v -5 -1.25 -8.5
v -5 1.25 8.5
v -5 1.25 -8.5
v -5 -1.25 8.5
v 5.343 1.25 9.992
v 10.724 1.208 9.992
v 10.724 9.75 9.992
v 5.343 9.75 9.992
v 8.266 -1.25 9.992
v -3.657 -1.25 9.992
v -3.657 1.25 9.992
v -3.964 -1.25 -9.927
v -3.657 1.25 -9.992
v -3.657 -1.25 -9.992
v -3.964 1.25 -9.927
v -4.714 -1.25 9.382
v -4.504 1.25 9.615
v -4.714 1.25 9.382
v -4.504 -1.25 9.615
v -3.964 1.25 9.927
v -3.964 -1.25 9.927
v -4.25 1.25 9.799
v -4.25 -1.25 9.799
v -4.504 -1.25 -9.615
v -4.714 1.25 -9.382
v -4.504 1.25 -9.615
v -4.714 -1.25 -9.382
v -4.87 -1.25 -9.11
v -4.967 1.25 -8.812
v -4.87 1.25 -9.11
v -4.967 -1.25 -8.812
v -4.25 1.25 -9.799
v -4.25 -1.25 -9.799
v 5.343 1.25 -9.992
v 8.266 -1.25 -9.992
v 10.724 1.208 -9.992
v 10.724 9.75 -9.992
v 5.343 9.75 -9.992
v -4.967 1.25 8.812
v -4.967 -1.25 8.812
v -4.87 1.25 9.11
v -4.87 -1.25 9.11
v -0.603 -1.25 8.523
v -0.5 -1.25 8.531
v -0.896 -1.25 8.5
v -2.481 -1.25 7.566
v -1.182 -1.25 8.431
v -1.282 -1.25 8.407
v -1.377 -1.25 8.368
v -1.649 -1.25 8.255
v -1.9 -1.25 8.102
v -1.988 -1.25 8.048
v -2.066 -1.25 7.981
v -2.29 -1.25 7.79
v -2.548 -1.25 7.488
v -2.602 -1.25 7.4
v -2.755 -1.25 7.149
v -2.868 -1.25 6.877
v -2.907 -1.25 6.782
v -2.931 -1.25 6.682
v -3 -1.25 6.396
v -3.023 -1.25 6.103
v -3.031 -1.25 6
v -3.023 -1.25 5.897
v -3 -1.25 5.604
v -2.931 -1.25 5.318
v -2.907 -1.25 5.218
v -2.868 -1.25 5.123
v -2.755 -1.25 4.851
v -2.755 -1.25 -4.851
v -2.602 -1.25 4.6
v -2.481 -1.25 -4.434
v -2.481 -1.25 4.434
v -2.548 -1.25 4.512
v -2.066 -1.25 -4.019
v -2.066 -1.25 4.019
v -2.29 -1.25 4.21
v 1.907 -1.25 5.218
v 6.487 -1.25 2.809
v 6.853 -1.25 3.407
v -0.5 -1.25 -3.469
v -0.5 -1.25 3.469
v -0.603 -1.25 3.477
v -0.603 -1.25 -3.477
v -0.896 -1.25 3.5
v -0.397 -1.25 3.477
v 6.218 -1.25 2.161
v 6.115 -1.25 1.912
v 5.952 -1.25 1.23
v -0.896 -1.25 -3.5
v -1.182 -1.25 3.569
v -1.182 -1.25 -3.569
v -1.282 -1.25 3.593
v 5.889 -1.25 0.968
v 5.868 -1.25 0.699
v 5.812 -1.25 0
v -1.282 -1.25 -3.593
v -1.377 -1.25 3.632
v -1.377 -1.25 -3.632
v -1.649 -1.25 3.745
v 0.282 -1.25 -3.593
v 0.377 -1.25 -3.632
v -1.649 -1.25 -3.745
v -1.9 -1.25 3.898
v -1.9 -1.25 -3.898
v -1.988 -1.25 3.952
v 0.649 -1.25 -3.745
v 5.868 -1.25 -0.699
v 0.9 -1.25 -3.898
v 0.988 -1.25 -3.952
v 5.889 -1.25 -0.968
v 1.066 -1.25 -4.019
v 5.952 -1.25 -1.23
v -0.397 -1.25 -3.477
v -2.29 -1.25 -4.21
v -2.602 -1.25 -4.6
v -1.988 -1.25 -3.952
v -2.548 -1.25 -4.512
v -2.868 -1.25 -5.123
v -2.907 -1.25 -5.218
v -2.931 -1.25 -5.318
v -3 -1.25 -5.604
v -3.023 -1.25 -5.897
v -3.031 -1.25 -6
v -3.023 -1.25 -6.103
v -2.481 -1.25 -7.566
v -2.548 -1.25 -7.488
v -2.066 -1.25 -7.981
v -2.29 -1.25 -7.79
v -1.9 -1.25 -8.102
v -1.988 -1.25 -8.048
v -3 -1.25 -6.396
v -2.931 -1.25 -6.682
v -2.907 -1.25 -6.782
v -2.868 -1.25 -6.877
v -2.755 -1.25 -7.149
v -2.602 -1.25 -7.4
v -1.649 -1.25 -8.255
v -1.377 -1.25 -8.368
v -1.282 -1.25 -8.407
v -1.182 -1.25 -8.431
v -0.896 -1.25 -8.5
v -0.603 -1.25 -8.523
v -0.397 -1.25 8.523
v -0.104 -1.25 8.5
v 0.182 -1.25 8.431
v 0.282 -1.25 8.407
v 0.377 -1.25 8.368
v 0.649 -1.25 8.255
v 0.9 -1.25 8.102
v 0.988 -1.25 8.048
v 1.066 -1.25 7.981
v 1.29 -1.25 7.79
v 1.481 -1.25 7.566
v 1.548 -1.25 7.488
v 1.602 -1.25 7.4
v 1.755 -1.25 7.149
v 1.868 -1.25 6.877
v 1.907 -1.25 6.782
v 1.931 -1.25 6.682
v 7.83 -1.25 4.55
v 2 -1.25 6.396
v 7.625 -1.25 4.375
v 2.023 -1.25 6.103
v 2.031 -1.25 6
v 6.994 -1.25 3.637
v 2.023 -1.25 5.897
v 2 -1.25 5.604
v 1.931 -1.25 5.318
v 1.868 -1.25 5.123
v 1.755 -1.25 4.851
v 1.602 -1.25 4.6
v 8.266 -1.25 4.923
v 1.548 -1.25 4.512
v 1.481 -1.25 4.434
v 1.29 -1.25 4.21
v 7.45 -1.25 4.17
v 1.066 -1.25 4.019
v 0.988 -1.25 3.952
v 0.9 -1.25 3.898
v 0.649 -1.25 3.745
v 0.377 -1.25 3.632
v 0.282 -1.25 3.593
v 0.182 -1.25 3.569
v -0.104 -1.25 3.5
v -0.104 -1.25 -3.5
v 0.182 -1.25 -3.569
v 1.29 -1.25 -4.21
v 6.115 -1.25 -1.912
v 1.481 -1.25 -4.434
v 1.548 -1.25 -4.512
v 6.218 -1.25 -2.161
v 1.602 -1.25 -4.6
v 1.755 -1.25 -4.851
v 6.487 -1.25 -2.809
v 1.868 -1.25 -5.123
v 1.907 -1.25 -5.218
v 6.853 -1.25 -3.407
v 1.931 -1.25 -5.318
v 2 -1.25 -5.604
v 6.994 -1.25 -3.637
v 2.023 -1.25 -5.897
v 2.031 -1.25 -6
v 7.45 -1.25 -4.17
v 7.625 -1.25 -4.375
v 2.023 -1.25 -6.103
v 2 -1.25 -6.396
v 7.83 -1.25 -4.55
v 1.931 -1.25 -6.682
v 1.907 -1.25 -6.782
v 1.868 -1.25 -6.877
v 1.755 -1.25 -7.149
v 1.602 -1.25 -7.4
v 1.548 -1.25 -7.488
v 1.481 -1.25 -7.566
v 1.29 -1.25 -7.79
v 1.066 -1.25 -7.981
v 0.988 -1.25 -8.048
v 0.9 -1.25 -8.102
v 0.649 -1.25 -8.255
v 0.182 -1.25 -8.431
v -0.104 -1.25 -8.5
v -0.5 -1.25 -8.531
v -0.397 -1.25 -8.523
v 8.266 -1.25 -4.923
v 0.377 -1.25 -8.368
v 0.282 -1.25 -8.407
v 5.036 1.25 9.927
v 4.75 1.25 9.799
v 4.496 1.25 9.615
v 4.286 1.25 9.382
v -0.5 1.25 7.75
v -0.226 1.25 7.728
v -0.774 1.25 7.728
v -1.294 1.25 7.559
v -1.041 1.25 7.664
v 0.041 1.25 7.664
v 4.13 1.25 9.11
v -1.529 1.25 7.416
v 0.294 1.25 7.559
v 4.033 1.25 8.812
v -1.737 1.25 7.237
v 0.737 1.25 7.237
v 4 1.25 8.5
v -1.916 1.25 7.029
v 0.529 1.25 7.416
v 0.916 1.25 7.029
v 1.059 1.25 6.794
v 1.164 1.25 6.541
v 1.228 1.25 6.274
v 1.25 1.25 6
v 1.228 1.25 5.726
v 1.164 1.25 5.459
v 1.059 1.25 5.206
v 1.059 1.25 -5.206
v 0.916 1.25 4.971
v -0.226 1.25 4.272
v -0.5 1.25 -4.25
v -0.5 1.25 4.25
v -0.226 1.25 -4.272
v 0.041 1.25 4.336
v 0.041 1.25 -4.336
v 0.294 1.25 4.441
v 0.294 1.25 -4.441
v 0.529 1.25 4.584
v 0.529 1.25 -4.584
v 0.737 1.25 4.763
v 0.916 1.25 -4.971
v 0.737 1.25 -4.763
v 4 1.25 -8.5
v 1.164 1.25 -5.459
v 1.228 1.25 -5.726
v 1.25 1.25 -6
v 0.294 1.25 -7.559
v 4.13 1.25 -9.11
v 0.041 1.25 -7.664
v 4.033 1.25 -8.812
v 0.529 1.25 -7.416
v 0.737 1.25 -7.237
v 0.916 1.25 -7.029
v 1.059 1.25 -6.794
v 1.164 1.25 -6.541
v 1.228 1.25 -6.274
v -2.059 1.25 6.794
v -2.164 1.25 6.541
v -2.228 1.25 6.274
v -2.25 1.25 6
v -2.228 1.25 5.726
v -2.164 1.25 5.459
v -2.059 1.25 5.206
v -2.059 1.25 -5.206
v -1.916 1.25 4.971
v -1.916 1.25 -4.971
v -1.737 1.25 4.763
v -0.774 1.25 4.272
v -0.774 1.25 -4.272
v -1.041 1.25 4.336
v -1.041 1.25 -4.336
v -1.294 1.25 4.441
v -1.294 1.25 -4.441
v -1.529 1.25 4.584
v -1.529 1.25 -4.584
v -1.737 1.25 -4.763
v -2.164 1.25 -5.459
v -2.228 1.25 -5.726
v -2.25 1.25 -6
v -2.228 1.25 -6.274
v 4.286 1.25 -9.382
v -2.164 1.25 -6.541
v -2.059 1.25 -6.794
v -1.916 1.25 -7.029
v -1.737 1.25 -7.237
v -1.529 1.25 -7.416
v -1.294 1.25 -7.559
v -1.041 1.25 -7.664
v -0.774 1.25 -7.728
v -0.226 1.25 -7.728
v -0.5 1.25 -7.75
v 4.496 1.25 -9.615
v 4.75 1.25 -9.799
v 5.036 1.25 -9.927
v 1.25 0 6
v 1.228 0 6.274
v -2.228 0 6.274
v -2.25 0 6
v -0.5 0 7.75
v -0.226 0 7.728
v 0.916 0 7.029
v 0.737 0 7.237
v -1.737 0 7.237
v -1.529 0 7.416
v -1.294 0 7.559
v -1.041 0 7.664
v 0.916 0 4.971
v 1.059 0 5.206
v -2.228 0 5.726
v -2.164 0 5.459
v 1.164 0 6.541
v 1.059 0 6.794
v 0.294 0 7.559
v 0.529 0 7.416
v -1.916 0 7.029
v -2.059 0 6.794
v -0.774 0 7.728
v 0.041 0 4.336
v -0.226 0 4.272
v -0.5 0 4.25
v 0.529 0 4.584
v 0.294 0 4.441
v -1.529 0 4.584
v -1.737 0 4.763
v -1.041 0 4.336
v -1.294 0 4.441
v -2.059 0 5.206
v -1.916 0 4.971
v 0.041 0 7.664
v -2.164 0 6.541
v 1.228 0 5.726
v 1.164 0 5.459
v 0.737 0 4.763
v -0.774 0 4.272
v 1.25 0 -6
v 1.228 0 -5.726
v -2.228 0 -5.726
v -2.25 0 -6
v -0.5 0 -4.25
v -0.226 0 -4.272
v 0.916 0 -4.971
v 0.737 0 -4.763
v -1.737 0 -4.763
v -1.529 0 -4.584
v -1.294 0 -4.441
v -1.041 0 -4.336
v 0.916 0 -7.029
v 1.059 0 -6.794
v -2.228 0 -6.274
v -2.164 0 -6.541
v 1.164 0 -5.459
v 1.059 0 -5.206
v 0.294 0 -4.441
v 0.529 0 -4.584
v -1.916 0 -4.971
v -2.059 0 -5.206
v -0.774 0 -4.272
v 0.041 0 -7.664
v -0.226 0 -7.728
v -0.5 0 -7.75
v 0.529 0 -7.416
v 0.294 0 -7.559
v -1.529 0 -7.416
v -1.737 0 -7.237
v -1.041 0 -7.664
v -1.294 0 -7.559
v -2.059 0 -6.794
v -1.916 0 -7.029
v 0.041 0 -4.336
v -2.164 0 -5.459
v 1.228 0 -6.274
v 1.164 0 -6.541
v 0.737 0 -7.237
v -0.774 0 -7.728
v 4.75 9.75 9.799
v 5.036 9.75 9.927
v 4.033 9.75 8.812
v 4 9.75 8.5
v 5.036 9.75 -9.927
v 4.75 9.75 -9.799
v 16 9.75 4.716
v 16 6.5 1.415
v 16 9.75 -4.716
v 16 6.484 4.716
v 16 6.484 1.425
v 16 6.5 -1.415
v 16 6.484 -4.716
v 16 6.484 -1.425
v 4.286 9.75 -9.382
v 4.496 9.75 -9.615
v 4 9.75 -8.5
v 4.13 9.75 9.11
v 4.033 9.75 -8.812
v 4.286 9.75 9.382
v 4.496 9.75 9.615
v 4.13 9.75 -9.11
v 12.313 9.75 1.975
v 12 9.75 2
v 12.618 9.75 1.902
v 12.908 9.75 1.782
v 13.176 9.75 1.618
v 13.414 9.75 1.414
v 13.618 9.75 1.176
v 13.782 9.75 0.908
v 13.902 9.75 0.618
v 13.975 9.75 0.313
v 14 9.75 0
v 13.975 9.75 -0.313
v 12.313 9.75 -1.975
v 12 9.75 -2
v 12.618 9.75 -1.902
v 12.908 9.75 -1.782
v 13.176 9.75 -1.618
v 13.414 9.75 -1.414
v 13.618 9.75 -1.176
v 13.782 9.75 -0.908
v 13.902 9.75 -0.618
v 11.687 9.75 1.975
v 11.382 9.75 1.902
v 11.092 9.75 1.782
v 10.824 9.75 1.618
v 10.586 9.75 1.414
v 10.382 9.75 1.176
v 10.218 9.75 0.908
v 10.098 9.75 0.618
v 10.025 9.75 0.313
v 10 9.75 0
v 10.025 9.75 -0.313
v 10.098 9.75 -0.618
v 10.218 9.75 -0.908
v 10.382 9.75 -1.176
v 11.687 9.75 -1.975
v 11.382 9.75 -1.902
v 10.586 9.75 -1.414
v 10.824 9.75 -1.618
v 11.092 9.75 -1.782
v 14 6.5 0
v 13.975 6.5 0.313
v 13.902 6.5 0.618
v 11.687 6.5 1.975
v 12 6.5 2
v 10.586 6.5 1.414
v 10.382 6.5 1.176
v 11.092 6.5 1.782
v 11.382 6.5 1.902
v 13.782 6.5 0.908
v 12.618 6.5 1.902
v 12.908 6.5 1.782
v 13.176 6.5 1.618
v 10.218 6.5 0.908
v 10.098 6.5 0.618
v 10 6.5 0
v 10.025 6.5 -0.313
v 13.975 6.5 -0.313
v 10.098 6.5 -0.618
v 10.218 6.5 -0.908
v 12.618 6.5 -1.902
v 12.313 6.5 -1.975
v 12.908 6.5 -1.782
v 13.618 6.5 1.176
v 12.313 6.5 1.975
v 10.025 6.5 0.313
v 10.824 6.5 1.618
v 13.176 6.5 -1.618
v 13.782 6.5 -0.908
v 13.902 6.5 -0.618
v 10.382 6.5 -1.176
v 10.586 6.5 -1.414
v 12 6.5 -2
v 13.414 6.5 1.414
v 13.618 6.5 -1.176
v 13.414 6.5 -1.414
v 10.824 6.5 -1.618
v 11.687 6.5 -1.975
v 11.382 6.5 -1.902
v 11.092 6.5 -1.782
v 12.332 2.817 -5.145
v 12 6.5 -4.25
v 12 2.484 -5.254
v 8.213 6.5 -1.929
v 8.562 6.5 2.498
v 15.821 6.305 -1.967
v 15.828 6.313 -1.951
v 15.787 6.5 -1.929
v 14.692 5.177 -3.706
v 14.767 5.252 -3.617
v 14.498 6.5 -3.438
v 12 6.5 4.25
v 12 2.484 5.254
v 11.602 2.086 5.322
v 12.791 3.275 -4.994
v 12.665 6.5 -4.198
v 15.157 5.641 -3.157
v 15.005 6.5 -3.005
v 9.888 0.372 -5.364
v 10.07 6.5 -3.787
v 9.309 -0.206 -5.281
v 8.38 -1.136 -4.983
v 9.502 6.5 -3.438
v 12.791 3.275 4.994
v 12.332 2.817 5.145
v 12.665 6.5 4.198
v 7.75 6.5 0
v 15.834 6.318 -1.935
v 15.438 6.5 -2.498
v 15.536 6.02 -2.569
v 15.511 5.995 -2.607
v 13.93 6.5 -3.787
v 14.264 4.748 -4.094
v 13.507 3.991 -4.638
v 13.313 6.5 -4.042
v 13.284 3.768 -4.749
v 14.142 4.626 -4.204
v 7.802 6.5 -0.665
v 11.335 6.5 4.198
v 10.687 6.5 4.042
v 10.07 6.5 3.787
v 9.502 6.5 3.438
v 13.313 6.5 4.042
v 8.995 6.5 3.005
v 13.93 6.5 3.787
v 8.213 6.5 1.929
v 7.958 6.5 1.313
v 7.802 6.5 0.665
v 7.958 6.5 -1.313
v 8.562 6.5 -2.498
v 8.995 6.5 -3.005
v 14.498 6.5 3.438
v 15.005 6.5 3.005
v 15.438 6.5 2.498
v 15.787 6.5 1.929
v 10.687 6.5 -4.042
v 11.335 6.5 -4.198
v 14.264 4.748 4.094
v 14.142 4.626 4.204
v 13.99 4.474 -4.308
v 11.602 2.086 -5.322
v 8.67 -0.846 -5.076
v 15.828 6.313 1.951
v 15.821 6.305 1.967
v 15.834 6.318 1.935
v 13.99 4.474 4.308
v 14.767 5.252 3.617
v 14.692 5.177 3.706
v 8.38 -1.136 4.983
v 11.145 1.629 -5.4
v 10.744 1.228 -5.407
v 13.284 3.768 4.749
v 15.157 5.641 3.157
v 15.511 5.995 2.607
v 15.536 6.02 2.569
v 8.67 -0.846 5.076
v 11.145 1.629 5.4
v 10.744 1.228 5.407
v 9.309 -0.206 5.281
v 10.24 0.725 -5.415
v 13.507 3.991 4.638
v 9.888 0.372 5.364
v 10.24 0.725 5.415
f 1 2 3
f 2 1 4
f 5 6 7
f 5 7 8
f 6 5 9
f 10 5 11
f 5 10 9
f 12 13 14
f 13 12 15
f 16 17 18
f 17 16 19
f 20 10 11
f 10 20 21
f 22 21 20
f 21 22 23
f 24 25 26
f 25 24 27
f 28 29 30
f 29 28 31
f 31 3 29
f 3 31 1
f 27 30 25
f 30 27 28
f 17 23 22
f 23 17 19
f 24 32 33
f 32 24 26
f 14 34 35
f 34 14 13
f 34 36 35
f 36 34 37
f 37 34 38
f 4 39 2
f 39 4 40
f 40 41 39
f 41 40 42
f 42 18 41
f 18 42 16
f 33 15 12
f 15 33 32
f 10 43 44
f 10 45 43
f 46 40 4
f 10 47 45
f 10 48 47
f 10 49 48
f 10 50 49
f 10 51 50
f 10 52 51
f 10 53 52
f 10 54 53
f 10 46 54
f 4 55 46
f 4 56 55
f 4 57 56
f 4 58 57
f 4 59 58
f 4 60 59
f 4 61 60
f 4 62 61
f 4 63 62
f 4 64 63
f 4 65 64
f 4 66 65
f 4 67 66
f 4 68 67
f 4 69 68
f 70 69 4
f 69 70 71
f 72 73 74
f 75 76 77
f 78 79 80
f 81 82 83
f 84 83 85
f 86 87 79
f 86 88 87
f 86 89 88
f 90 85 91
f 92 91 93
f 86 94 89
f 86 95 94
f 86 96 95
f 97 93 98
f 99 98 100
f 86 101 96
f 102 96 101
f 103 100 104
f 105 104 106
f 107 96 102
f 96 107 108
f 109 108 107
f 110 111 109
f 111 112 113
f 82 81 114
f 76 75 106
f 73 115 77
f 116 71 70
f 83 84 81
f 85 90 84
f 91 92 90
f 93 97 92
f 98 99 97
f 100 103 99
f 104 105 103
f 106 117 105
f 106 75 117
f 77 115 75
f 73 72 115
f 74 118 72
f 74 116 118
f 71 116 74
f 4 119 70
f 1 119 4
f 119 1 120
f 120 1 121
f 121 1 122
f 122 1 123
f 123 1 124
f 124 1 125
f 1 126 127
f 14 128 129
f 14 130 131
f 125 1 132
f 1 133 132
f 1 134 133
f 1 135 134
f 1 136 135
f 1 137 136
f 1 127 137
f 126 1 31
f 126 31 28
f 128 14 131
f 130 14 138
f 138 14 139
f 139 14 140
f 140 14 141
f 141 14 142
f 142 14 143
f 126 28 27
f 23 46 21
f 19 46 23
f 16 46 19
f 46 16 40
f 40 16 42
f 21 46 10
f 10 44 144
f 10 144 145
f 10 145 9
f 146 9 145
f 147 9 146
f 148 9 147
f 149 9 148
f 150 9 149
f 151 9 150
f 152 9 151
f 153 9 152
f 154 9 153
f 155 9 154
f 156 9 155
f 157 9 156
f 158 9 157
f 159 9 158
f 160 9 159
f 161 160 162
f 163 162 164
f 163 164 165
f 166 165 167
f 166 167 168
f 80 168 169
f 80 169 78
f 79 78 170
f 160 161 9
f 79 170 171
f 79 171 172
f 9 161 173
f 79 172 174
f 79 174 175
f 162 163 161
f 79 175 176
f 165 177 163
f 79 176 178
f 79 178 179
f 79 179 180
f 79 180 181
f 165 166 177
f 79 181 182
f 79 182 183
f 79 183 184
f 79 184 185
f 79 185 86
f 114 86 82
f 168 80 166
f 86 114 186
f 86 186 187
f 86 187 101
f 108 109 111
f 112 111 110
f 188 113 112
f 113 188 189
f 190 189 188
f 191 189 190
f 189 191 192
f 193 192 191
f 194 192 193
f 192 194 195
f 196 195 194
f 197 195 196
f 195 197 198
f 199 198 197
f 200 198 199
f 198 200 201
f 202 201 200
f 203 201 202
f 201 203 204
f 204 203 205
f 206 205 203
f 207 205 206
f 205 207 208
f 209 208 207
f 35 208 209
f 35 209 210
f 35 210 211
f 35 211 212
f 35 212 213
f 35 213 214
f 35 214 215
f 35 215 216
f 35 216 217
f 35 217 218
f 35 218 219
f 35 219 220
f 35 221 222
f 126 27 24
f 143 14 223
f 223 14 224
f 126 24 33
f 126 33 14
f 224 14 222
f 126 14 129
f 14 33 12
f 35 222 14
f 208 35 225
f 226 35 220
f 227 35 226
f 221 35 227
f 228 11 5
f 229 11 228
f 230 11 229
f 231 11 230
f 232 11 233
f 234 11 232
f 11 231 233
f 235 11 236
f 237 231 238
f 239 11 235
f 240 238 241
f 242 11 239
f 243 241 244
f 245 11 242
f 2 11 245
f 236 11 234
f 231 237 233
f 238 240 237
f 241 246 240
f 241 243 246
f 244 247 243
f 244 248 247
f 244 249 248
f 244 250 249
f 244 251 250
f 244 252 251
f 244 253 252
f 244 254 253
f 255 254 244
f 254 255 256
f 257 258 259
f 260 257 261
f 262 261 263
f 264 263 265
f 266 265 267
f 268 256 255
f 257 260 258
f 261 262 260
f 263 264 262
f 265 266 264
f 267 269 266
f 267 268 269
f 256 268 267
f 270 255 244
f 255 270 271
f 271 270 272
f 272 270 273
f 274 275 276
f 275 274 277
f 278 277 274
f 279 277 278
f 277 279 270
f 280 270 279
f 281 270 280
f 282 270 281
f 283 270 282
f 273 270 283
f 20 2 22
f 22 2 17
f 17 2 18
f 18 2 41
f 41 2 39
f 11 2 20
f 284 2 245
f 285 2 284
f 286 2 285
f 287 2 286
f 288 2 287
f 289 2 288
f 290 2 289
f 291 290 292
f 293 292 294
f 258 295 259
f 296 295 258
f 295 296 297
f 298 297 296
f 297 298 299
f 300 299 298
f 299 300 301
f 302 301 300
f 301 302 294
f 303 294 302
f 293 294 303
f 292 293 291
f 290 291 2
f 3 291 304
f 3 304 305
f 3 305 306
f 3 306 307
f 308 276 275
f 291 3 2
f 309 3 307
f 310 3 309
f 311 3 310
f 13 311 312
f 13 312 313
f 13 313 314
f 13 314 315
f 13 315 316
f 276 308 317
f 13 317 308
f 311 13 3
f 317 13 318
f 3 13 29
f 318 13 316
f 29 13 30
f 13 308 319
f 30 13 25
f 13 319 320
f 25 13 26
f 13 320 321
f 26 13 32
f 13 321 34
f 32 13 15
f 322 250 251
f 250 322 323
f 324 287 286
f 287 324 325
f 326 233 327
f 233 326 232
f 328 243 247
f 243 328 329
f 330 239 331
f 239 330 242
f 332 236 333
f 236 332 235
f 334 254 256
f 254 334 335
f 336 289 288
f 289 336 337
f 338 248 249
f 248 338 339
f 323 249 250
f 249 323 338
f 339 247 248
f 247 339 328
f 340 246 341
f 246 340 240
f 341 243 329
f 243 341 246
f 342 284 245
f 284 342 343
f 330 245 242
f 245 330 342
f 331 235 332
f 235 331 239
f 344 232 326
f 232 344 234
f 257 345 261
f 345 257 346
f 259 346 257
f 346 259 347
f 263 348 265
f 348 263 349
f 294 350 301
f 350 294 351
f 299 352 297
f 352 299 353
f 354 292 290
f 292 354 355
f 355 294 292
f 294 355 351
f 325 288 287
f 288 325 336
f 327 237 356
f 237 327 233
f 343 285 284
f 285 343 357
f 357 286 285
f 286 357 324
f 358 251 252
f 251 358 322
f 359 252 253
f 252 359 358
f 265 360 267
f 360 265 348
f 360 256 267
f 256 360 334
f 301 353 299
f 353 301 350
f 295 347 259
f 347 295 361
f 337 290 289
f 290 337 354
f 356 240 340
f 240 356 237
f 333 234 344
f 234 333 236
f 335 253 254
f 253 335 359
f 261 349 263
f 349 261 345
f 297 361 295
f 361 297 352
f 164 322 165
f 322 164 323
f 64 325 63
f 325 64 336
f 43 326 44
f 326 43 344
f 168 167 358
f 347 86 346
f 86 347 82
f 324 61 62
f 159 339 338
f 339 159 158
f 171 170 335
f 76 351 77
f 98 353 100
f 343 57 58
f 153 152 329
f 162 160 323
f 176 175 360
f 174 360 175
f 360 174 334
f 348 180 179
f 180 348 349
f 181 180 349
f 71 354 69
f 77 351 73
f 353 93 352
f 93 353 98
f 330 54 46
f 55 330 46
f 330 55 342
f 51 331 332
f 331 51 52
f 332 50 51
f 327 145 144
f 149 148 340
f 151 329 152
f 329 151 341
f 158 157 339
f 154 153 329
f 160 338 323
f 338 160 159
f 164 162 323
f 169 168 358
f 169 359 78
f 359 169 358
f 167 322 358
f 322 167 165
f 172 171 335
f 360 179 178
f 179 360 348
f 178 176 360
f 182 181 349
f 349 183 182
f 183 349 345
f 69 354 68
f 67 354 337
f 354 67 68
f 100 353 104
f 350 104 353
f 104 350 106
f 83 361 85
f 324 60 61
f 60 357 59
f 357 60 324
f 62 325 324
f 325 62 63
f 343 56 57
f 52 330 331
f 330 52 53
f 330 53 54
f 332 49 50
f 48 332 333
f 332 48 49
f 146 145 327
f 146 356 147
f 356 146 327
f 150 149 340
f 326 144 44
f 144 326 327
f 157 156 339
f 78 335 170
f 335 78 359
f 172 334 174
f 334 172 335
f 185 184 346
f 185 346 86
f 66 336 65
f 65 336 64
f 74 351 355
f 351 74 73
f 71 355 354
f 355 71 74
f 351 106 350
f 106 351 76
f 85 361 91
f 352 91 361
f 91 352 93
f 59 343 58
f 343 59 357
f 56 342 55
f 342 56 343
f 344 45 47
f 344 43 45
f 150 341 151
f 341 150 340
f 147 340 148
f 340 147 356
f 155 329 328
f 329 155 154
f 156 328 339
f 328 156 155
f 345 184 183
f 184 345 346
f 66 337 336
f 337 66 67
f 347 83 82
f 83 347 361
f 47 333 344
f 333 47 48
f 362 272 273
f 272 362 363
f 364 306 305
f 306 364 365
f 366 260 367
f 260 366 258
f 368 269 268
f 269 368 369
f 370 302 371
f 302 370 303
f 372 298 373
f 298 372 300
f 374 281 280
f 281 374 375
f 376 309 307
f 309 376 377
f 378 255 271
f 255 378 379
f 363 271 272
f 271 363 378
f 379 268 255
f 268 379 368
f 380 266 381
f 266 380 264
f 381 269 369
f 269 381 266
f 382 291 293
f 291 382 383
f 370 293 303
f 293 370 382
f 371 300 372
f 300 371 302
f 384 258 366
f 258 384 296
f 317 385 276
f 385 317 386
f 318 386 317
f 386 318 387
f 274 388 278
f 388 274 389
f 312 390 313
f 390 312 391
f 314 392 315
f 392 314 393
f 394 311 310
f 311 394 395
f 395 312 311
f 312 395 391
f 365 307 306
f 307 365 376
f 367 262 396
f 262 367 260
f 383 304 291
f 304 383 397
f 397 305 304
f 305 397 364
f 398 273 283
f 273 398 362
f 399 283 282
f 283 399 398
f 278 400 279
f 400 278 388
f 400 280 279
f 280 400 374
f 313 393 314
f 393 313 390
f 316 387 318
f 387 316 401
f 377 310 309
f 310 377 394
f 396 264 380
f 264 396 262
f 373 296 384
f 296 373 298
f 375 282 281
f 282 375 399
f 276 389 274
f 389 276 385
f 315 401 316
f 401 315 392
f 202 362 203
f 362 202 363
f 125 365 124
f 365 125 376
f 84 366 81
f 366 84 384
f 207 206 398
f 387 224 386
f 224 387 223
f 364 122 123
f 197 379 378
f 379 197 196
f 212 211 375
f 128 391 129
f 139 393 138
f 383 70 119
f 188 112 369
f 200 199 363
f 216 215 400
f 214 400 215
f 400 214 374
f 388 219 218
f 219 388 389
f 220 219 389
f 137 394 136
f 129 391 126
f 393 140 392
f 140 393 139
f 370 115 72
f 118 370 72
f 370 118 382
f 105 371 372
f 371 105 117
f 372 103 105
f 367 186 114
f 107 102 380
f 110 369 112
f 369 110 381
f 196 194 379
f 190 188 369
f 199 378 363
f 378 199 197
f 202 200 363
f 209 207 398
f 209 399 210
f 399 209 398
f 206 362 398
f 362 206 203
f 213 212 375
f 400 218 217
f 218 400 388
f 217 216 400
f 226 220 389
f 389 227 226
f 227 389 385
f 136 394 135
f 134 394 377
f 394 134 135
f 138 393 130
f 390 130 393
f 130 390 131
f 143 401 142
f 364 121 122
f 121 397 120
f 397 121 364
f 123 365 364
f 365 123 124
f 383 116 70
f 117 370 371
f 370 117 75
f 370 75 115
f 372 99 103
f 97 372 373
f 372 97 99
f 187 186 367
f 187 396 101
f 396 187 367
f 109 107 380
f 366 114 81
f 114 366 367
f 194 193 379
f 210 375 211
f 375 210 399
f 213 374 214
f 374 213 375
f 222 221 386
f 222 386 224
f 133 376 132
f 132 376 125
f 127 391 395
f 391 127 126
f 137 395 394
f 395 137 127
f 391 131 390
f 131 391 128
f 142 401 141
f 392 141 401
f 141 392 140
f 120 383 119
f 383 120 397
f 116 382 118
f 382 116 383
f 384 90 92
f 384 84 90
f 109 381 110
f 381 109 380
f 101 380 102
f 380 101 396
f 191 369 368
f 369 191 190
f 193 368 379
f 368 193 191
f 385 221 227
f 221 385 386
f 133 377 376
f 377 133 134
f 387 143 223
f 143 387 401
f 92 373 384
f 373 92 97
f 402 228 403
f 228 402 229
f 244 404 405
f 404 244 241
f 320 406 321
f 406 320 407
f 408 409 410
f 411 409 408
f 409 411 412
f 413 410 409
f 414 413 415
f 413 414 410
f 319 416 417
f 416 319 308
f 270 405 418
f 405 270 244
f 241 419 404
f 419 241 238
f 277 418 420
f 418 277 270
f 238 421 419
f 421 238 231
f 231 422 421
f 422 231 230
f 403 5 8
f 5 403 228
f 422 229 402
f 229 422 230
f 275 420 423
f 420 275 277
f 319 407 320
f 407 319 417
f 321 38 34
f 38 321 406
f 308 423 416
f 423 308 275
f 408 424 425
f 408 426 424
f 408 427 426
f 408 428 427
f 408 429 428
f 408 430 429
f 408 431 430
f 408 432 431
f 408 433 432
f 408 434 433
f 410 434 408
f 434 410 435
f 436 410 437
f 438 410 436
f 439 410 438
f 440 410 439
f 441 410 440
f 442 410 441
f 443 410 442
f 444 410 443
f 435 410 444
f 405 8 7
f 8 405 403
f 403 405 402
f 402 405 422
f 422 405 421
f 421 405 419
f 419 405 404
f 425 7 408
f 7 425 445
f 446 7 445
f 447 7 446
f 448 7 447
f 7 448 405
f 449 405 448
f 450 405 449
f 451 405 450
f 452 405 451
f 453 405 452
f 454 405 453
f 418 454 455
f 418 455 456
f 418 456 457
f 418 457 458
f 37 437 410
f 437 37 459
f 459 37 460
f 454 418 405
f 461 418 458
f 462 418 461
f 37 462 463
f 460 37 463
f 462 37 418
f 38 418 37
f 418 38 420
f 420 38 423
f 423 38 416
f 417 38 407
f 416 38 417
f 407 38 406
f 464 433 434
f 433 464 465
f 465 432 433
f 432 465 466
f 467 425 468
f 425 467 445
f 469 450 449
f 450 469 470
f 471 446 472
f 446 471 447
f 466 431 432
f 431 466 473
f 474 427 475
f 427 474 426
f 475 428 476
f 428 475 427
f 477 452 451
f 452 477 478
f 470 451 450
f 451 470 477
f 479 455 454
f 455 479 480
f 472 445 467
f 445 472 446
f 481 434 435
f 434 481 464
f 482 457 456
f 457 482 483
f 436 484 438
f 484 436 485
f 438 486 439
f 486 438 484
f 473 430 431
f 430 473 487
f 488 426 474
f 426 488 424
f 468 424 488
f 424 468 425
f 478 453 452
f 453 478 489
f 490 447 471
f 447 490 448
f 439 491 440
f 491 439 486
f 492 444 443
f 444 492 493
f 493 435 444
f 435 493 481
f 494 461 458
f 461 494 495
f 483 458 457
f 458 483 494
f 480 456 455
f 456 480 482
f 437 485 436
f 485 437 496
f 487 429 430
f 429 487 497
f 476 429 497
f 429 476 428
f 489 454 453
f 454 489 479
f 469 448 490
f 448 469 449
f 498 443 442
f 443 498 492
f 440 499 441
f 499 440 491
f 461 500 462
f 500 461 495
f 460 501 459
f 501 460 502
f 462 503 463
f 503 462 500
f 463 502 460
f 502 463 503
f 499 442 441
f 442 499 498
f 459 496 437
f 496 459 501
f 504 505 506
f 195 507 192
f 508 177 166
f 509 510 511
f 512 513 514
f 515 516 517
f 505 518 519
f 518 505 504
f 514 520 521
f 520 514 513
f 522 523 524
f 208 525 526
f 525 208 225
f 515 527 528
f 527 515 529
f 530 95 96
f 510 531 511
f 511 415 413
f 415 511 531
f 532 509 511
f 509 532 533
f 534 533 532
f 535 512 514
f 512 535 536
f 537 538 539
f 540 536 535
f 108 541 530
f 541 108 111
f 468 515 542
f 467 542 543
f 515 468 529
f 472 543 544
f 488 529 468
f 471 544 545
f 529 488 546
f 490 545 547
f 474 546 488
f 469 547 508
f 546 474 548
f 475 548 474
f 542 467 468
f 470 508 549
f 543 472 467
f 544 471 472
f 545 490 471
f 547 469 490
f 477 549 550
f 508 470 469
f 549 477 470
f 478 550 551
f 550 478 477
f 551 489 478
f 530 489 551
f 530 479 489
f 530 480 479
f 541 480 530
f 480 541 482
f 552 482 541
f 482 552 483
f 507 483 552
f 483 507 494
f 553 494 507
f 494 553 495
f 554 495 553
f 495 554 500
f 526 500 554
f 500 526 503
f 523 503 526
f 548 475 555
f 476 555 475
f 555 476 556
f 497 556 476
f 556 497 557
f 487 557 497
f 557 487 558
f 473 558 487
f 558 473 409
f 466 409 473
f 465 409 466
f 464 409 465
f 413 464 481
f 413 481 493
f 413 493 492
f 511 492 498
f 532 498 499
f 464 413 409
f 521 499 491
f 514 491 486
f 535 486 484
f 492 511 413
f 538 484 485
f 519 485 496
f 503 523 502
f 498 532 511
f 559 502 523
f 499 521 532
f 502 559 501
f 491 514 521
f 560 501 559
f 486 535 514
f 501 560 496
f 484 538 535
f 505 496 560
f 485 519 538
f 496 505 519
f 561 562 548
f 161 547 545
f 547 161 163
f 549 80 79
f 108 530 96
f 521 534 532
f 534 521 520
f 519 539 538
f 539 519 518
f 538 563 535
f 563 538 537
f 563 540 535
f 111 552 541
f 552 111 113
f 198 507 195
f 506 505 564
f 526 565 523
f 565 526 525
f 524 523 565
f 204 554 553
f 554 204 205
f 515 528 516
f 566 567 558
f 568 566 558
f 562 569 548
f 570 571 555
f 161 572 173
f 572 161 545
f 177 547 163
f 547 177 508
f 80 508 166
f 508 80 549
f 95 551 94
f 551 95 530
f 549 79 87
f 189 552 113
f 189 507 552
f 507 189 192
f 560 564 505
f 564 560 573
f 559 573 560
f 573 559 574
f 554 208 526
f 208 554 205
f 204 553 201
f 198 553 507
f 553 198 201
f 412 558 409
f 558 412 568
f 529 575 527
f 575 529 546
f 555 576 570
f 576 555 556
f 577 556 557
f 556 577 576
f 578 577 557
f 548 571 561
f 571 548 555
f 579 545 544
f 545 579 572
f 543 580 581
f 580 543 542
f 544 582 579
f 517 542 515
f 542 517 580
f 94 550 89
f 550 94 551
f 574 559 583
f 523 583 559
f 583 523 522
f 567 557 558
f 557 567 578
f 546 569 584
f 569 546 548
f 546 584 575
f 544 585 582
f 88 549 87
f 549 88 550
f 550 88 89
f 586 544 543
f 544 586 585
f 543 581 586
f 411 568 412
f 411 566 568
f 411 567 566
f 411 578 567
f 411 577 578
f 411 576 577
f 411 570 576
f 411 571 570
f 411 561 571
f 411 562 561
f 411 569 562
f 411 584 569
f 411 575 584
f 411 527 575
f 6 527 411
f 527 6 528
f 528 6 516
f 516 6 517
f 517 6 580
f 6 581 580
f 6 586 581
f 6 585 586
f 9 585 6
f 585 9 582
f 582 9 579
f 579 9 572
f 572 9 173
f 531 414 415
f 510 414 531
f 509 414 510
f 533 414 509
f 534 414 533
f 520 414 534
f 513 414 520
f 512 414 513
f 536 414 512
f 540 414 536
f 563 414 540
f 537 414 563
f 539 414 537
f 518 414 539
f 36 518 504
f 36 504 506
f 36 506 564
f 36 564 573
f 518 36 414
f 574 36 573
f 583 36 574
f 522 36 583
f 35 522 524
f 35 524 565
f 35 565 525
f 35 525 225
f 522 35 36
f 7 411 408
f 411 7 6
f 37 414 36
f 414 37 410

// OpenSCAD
// file: ../Dollo/NEW_long_ties/globals.scad
/*
Most things in this file is represented as one millimeter, so keep that in mind while changing things.
Some of the setting are not mm but at variables that you can set, such as 2*x=2x and you are setting what x is.
I will try to specify when things are variables and not exact measurements.
*/

// printer slop
slop = 0.15;

obj_leg = 30;
leg_length = 5.5;
small_number = 0.001;
metal_core_rode_global = 5;


///////////////// number of holes /////////////////////
z_hole_number = 8;
other_holes = 8;

///////////////// Pins /////////////////////

//pins that poke out
ball_size = 10;
pin_height = 20;
pin_diameter = 6;


//holes
hole_ball_size = ball_size;
hole_pin_height = pin_height;
hole_pin_diameter = pin_diameter;

///////////////// Z THINGS /////////////////////

berring_slot_width = 7.5;
berring_slot_depth = 6.5;
metal_core_rode = 5;

///////////////// X THINGS /////////////////////

//male dove tails
male_dove_max_width=8;
male_dove_min_width=5;
male_dove_depth=5;
male_dove_height=obj_leg/2;

function scaled_male_dove_max_width() = male_dove_max_width - slop;
function scaled_male_dove_min_width() = male_dove_min_width - slop;
function scaled_male_dove_depth() = male_dove_depth - slop;

//female dove tails, this is found on the y mounts
girl_max_width=11;
girl_min_width=5;
girl_depth=5;
girl_height=obj_leg;


///////////////// Y THINGS /////////////////////
/*
The Y is so normal that all of those global variables at the top should change all of the setting in it, this section is set her incase there are variables set in the future development of this project.
*/

// stepper
motor_side_length = 43.2;
motor_bolt_hole_distance = 31;
motor_center_hole = 23;
motor_shaft_dia = 5;
motor_shaft_hole_dia = 5+2*slop;

// bolts etc.
bolt_hole_dia = 3+2*slop;
bolt_head_hole_dia = 5.8;

m4_bolt_hole_dia = 4+2*slop;
m4_bolt_head_hole_dia = 6.8+2*slop;


m3_nut_side = 5.65;
m3_nut_height = 2.3;
m4_nut_side = 6.85;
m4_nut_height = 3.1;

// threaded rod
lifter_rod_diam = 9.86;
hole_threaded_rod = lifter_rod_diam+2*slop;

// for the extensions
metal_rod_size = 9;
// main file
use <../Dollo/NEW_long_ties/include.scad>;

lepy7_PSU_clip();

module lepy7_PSU_clip() {
    difference() {
        union() {
            translate([5/2,0,0])
            rotate([90,0,0])
            rounded_cube_side(15,20,2.5,3,center=true,$fn=30);

            translate([12/2+4,8.5/2,0])
            rotate([90,0,0])
            rounded_cube_side(12,20,8.5+2.5,3,center=true,$fn=30);
        }

        translate([10/2+8-1,0,0])
        rotate([90,0,0])
        cylinder(d=4,h=20,center=true,$fn=40);

        translate([10/2+8-1,0,0])
        rotate([90,0,0])
        cylinder(d1=8.5, d2=15,h=13,center=true,$fn=40);

        translate([-0.5,0,6])
        rotate([90,0,0]) {
            cylinder(d=3.5,h=10,center=true,$fn=40);
            cylinder(d1=3.5,d2=6,h=2,$fn=40);
        }

        translate([-0.5,0,-6])
        rotate([90,0,0]) {
            cylinder(d=3.5,h=10,center=true,$fn=40);
            cylinder(d1=3.5,d2=6,h=2,$fn=40);
        }

        translate([29.8,-8,0])
        rotate([0,0,45])
        cube([40,40,40],center=true);

        translate([32,0,17])
        rotate([0,45,0])
        cube([40,40,40],center=true);

        translate([32,0,-17])
        rotate([0,-45,0])
        cube([40,40,40],center=true);
    }
}
